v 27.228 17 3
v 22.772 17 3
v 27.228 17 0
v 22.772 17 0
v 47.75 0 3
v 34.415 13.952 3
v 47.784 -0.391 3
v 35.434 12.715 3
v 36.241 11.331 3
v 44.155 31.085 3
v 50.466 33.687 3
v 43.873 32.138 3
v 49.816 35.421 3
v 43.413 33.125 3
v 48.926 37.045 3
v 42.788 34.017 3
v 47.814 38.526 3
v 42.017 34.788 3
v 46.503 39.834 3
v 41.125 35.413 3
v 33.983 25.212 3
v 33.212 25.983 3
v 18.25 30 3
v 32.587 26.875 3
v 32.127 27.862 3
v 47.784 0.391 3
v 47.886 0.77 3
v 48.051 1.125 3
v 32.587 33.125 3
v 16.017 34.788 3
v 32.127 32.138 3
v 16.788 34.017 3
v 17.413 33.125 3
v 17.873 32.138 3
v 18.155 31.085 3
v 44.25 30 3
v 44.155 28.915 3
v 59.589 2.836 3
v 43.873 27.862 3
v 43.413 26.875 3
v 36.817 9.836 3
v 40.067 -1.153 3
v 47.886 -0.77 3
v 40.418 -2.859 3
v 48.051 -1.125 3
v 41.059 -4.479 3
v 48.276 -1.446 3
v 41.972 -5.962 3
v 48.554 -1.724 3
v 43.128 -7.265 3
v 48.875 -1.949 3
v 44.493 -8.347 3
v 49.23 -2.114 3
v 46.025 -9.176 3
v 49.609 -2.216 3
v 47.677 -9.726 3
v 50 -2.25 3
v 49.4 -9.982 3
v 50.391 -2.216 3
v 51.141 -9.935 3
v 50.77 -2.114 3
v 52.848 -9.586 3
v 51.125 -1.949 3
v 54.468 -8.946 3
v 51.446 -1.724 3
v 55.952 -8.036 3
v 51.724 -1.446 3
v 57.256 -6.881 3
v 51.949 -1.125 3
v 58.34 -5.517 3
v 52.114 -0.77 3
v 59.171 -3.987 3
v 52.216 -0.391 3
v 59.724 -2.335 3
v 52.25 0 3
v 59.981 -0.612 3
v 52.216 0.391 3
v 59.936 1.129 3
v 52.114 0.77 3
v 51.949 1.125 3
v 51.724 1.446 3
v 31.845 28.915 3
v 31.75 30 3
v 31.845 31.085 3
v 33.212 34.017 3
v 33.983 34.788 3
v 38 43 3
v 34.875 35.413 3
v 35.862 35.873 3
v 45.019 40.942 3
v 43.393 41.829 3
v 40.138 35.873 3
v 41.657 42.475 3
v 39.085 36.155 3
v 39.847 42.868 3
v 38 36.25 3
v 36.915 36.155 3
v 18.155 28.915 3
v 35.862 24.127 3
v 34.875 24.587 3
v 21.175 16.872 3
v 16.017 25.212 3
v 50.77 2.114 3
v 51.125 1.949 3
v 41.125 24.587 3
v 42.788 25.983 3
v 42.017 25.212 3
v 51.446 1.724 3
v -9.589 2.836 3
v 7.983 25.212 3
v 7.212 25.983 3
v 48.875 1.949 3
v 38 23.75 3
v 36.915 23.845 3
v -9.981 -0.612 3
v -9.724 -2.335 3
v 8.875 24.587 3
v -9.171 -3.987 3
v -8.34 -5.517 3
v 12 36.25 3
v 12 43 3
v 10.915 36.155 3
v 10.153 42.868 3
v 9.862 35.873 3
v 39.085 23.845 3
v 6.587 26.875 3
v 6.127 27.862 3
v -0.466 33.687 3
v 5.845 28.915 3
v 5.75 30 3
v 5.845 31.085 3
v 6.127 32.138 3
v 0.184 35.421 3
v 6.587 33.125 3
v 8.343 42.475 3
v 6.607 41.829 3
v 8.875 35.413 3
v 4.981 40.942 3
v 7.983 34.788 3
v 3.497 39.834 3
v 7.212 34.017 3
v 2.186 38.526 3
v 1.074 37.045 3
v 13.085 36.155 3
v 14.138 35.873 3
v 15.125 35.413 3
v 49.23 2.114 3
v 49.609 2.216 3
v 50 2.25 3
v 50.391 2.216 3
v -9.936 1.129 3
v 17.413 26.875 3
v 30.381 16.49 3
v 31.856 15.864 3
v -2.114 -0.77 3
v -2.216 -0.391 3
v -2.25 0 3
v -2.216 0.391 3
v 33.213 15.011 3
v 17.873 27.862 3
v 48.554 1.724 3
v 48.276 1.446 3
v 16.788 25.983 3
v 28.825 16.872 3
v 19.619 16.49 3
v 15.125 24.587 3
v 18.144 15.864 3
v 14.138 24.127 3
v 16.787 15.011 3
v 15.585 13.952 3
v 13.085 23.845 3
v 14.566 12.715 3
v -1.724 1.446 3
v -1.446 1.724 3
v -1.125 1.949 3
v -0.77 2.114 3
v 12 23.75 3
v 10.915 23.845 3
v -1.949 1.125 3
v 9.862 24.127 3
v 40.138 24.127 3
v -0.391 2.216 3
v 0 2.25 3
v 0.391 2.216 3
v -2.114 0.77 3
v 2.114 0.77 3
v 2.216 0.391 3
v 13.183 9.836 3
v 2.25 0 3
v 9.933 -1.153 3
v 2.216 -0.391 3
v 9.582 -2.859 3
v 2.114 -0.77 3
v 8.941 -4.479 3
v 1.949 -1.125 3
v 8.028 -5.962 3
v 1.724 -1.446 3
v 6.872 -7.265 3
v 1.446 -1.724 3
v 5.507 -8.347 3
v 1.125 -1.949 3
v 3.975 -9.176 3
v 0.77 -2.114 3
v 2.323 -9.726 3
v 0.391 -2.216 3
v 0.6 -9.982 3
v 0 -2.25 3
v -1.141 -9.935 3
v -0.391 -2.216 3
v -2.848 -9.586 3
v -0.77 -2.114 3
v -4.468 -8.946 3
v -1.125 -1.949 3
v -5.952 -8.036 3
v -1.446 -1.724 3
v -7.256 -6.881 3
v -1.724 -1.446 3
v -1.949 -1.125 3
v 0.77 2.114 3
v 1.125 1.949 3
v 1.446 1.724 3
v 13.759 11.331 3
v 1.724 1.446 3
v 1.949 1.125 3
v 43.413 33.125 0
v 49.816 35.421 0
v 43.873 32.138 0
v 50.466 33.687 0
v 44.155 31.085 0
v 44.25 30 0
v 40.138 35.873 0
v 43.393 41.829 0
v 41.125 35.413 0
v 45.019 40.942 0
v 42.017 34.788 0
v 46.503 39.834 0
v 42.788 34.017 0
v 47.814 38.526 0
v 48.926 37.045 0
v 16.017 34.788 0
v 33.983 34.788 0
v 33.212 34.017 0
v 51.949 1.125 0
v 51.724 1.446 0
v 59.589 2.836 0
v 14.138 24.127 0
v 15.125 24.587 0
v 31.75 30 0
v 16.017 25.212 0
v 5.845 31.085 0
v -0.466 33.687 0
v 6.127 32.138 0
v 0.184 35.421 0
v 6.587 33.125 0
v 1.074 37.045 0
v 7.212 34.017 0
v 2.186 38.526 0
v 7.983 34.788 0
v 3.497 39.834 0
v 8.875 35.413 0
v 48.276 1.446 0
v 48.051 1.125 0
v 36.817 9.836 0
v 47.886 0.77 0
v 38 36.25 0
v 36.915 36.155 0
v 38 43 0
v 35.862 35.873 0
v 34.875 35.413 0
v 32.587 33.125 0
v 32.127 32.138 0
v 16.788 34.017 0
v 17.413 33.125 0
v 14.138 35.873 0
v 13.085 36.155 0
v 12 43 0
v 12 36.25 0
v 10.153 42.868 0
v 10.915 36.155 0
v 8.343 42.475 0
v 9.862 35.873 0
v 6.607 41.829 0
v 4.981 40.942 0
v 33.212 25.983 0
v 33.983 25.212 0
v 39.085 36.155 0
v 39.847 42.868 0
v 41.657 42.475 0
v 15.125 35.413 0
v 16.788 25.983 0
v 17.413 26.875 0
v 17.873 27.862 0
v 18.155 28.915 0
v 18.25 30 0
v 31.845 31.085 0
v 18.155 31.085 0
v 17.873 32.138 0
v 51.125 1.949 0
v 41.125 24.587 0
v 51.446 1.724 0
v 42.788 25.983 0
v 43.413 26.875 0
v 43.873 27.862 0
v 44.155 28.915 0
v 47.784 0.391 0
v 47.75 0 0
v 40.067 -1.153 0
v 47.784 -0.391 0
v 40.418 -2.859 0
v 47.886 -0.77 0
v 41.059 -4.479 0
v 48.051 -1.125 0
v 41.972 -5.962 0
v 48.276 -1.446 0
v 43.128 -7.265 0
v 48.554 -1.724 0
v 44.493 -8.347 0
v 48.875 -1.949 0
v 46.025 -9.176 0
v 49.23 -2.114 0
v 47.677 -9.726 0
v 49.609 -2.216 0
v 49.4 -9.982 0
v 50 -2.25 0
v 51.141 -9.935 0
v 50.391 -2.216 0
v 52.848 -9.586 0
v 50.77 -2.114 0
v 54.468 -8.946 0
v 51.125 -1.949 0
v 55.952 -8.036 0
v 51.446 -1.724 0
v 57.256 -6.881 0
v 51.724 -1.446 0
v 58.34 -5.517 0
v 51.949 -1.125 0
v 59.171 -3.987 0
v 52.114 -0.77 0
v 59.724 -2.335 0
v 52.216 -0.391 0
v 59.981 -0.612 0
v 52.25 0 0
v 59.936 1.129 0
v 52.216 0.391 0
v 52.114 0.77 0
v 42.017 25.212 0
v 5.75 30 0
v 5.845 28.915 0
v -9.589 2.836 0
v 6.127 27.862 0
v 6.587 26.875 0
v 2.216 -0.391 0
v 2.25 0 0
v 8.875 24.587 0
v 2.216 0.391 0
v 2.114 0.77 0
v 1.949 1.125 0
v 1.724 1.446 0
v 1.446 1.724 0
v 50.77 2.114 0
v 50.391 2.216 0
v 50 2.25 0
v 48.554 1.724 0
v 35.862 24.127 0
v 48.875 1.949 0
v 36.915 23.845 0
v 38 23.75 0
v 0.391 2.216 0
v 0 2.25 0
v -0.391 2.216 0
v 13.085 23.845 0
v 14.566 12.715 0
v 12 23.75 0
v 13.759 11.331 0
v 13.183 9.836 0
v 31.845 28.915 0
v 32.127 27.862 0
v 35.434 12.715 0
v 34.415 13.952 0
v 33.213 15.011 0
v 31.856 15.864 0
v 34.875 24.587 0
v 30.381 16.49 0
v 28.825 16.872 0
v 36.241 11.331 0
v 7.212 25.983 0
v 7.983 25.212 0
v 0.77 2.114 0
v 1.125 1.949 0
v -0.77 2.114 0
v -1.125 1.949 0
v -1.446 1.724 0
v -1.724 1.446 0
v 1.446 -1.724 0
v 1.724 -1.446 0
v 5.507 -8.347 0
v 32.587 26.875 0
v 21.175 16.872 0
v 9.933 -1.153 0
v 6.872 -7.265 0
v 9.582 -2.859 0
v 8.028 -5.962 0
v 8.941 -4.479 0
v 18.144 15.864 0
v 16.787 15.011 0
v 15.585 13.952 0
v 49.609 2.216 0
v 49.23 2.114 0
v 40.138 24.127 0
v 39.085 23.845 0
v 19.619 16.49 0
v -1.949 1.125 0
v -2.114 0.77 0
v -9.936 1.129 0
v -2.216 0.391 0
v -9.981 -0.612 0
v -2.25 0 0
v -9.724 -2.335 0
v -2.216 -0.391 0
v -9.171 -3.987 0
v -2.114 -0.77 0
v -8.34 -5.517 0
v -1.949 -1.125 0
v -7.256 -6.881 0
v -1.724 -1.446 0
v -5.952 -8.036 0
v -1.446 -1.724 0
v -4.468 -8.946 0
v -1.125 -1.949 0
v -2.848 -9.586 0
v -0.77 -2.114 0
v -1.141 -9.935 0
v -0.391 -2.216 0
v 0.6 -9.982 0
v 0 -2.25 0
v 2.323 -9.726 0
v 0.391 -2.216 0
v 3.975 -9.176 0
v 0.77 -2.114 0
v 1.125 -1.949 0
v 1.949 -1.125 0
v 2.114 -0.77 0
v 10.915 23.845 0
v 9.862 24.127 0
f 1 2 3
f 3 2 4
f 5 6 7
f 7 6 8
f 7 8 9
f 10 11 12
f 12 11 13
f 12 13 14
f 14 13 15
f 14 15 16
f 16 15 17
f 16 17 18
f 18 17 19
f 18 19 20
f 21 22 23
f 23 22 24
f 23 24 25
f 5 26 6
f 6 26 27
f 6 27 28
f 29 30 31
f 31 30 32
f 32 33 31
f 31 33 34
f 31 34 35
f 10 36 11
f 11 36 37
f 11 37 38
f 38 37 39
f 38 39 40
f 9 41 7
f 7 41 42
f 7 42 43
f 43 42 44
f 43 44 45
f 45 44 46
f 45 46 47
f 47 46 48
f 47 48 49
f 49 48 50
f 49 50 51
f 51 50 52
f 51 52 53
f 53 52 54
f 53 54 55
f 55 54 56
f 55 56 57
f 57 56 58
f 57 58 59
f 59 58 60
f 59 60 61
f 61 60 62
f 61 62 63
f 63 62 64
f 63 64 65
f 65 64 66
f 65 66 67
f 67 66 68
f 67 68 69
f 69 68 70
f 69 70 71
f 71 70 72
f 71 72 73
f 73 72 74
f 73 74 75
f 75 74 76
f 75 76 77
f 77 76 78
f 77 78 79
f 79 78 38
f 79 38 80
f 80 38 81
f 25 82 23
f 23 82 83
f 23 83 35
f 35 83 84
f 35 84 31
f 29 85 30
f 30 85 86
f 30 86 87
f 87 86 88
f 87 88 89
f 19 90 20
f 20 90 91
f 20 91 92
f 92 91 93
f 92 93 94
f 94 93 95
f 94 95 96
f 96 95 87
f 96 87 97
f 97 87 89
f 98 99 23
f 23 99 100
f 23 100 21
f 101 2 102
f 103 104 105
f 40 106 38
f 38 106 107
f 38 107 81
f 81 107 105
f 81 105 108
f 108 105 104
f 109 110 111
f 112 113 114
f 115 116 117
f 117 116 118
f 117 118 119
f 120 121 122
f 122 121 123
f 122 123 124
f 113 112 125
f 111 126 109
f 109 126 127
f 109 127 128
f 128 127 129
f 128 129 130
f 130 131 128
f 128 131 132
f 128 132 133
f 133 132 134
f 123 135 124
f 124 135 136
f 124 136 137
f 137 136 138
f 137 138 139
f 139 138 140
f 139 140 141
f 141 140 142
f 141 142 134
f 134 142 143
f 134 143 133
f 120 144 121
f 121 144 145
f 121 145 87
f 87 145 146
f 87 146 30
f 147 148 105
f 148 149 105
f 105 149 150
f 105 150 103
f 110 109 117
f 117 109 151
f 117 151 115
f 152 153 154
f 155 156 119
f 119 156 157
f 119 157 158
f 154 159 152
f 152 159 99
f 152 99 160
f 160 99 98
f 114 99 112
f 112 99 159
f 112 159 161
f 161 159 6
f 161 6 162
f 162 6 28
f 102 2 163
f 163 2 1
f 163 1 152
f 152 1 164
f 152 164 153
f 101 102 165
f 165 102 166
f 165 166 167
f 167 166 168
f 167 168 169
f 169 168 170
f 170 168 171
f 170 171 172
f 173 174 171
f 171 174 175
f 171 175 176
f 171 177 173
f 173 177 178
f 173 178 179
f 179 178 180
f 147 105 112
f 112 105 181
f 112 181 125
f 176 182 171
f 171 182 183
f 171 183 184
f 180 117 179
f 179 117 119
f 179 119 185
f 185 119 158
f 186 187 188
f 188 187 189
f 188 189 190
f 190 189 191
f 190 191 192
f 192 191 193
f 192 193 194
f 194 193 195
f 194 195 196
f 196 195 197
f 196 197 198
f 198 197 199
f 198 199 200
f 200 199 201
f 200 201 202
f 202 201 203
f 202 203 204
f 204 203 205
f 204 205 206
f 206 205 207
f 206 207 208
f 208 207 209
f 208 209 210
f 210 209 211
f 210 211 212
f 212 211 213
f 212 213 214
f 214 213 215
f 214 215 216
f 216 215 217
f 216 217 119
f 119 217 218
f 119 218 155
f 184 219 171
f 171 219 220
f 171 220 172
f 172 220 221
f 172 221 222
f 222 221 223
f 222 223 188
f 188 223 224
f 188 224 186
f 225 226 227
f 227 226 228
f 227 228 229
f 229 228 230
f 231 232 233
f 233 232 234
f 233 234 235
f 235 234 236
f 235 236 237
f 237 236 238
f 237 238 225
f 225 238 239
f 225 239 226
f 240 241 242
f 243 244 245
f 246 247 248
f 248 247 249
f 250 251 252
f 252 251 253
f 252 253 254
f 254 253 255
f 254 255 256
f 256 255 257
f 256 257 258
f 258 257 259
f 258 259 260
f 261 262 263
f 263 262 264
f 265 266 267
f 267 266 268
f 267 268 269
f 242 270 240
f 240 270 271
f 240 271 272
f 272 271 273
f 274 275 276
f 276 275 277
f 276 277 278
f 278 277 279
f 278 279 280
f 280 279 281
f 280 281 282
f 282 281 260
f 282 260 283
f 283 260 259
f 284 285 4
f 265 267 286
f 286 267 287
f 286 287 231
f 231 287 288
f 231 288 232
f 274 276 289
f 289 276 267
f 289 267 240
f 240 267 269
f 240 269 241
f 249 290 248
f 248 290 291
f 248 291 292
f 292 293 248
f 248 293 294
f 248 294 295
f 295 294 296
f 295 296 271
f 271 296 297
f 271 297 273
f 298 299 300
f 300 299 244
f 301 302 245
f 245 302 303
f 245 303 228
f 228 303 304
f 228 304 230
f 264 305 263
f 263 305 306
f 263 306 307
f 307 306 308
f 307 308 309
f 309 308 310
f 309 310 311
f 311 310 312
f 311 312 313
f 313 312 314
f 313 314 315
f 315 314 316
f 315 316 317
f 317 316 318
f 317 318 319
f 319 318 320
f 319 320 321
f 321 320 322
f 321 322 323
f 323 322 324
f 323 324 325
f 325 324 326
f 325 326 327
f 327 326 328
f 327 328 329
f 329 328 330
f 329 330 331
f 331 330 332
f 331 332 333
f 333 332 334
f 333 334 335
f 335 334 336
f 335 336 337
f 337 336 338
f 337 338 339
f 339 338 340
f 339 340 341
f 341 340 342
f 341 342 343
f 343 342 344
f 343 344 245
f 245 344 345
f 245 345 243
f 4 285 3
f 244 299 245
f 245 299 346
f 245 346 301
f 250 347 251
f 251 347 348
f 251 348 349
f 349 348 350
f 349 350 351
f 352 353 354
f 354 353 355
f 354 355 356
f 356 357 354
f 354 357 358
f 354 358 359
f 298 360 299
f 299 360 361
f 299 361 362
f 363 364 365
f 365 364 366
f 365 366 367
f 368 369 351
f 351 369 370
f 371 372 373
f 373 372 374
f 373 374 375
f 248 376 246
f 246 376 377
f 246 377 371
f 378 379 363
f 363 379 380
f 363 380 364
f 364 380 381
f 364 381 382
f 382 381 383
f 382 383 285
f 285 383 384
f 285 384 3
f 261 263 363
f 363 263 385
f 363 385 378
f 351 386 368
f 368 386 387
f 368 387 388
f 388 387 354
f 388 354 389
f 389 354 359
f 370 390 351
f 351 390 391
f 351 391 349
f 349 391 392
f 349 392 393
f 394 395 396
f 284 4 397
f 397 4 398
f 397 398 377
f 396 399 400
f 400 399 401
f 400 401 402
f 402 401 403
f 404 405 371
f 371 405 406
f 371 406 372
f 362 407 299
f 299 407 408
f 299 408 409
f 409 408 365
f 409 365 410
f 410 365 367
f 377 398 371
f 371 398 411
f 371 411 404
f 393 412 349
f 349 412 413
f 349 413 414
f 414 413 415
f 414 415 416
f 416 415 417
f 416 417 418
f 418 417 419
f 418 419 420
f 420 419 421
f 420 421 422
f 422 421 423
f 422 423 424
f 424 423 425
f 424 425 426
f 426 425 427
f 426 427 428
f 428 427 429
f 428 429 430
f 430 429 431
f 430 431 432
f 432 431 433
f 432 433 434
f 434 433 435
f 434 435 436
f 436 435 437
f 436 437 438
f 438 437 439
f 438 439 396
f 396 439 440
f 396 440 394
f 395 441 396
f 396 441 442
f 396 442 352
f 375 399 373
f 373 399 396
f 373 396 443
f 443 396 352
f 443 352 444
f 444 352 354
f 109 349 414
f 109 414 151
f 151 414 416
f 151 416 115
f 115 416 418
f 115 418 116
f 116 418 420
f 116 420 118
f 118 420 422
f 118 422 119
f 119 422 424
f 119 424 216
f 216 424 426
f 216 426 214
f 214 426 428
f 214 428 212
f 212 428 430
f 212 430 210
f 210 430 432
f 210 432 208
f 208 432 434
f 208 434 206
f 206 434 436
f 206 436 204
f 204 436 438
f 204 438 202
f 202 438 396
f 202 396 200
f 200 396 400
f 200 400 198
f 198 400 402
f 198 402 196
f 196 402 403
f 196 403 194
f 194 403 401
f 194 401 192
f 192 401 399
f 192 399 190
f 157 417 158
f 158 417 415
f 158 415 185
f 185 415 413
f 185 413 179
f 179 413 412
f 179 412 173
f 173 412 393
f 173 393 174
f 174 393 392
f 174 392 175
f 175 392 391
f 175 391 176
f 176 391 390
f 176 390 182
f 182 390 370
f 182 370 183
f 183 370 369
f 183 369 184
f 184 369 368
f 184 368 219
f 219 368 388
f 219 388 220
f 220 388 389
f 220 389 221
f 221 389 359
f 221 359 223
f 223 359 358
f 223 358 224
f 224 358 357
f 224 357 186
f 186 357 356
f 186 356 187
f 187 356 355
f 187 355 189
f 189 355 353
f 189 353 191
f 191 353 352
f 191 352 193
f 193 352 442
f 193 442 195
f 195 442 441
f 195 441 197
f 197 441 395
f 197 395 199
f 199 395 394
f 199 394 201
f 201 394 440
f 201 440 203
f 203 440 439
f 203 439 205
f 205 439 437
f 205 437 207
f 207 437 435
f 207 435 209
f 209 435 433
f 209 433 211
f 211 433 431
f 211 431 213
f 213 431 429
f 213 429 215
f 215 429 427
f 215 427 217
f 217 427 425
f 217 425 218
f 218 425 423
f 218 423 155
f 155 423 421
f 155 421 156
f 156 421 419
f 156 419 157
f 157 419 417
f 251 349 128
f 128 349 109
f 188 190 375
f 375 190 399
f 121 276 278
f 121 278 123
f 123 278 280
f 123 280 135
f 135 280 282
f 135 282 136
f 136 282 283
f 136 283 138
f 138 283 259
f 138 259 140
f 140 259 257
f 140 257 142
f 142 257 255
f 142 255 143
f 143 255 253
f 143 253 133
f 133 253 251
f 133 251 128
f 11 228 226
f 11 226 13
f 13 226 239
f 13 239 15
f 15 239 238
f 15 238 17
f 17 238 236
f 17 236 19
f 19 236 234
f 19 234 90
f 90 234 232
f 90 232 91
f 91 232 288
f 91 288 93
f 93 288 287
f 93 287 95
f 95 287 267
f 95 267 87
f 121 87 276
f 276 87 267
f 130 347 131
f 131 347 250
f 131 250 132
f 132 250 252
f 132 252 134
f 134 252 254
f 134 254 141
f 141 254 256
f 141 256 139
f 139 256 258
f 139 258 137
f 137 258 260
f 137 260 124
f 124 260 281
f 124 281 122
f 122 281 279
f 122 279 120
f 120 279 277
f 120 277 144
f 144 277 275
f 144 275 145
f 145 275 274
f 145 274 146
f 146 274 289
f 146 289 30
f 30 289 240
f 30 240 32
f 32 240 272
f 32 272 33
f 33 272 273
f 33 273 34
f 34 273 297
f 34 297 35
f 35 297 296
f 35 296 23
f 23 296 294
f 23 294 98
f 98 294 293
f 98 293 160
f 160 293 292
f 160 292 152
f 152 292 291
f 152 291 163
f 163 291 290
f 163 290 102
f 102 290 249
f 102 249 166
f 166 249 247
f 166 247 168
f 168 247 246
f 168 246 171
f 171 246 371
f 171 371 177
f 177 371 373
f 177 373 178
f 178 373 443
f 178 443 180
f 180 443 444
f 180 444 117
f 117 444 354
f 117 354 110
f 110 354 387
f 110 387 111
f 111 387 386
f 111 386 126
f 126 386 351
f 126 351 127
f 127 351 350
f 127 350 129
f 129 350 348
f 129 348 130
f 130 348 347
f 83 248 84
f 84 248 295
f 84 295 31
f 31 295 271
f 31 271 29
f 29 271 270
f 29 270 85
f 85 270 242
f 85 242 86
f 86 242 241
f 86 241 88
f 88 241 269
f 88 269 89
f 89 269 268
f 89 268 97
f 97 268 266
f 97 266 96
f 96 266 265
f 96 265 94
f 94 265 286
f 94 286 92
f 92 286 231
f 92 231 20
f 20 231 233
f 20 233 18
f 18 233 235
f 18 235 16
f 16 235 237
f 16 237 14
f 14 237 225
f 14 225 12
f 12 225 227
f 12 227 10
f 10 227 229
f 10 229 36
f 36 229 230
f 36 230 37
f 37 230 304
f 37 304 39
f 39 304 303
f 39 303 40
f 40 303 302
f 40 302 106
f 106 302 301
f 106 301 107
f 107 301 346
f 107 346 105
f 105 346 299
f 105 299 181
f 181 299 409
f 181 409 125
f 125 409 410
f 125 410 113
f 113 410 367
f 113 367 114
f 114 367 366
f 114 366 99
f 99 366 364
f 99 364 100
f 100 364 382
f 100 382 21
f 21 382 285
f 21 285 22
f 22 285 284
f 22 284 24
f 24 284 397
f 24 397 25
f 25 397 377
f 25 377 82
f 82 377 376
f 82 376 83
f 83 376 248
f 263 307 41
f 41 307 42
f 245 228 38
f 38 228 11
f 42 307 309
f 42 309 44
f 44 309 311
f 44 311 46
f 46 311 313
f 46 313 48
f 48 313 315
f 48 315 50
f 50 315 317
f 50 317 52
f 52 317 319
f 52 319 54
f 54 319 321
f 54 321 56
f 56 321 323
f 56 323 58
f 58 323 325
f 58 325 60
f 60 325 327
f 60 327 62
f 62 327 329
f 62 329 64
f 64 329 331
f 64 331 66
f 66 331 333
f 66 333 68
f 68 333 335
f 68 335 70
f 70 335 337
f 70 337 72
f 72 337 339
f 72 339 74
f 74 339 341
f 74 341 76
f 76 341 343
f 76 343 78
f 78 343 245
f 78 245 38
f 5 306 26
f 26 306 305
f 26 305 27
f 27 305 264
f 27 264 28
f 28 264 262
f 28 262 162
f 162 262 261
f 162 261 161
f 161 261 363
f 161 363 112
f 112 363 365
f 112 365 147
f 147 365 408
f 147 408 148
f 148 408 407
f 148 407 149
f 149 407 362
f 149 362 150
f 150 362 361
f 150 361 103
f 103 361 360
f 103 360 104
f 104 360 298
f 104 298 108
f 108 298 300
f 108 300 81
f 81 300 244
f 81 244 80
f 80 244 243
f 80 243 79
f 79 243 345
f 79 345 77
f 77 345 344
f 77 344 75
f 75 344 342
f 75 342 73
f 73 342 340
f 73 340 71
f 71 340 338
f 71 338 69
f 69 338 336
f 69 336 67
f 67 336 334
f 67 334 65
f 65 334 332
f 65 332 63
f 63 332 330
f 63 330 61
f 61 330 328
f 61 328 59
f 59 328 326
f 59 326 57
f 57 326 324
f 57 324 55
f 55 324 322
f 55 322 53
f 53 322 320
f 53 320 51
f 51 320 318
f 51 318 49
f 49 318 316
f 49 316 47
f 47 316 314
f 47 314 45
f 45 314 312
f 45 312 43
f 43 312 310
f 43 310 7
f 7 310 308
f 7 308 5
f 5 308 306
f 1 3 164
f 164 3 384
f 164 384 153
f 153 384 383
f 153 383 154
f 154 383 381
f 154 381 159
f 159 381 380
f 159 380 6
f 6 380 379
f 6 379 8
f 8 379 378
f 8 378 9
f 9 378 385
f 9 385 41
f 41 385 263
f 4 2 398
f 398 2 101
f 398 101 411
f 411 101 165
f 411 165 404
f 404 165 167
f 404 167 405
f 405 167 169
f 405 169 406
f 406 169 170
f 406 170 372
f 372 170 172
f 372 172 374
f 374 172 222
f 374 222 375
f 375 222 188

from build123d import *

# Parameters (mm, degrees)
ESQUISSE1_R          = 10
ESQUISSE1_R_2        = 2.25
BOSS_EXTRU_1_DEPTH   = 3
BOSS_EXTRU_1_2_DEPTH = 3
ESQUISSE1_R_3        = 6.25
BOSS_EXTRU_1_3_DEPTH = 3
BOSS_EXTRU_2_DEPTH   = 3
CONG_1_R             = 10


with BuildPart() as part:
    # Esquisse1 → Boss.-Extru.1 (new body)
    with BuildSketch(Plane.XY):
        Circle(ESQUISSE1_R)
        Circle(ESQUISSE1_R_2, mode=Mode.SUBTRACT)
    extrude(amount=BOSS_EXTRU_1_DEPTH)



with BuildPart() as body_2:
    # Esquisse1 → Boss.-Extru.1 2 (new body)
    with BuildSketch(Plane.XY):
        with Locations((50, 0)):
            Circle(ESQUISSE1_R)
        with Locations((50, 0)):
            Circle(ESQUISSE1_R_2, mode=Mode.SUBTRACT)
    extrude(amount=BOSS_EXTRU_1_2_DEPTH)


with BuildPart() as body_3:
    # Esquisse1 → Boss.-Extru.1 3 (new body)
    with BuildSketch(Plane.XY):
        with BuildLine():
            Line((12, 43), (38, 43))
            ThreePointArc((38, 43), (51, 30), (38, 17))
            Line((38, 17), (12, 17))
            ThreePointArc((12, 17), (-1, 30), (12, 43))
        make_face()
        with Locations((12, 30)):
            Circle(ESQUISSE1_R_3, mode=Mode.SUBTRACT)
        with Locations((38, 30)):
            Circle(ESQUISSE1_R_3, mode=Mode.SUBTRACT)
    extrude(amount=BOSS_EXTRU_1_3_DEPTH)


with BuildPart() as part_1:
    add(part.part)

    add(body_2.part)  # Boss.-Extru.2 merges body 2

    add(body_3.part)  # Boss.-Extru.2 merges body 3
    # Esquisse2 → Boss.-Extru.2 (add)
    with BuildSketch(Plane.XY.offset(3)):
        with BuildLine():
            ThreePointArc((12, 17), (1.585468462, 22.219413078), (-0.46633352, 33.686533408))
            Line((-0.46633352, 33.686533408), (-9.589487323, 2.835794929))
            ThreePointArc((-9.589487323, 2.835794929), (2.00193965, 9.797562842), (9.933272577, -1.153297843))
            Line((9.933272577, -1.153297843), (15.301550175, 17))
            Line((15.301550175, 17), (12, 17))
        make_face()
        with BuildLine():
            Line((38, 17), (34.698449825, 17))
            Line((34.698449825, 17), (40.066727423, -1.153297843))
            ThreePointArc((40.066727423, -1.153297843), (47.99806035, 9.797562842), (59.589487323, 2.835794929))
            Line((59.589487323, 2.835794929), (50.46633352, 33.686533408))
            ThreePointArc((50.46633352, 33.686533408), (48.414531538, 22.219413078), (38, 17))
        make_face()
    extrude(amount=-BOSS_EXTRU_2_DEPTH)

    # Congé1
    cong_1_edges = [part_1.edges().sort_by_distance(p)[0] for p in [
        (15.301550175, 17, 1.5),
        (34.698449825, 17, 1.5),
    ]]
    fillet(cong_1_edges, radius=CONG_1_R)


solid = part_1.part
